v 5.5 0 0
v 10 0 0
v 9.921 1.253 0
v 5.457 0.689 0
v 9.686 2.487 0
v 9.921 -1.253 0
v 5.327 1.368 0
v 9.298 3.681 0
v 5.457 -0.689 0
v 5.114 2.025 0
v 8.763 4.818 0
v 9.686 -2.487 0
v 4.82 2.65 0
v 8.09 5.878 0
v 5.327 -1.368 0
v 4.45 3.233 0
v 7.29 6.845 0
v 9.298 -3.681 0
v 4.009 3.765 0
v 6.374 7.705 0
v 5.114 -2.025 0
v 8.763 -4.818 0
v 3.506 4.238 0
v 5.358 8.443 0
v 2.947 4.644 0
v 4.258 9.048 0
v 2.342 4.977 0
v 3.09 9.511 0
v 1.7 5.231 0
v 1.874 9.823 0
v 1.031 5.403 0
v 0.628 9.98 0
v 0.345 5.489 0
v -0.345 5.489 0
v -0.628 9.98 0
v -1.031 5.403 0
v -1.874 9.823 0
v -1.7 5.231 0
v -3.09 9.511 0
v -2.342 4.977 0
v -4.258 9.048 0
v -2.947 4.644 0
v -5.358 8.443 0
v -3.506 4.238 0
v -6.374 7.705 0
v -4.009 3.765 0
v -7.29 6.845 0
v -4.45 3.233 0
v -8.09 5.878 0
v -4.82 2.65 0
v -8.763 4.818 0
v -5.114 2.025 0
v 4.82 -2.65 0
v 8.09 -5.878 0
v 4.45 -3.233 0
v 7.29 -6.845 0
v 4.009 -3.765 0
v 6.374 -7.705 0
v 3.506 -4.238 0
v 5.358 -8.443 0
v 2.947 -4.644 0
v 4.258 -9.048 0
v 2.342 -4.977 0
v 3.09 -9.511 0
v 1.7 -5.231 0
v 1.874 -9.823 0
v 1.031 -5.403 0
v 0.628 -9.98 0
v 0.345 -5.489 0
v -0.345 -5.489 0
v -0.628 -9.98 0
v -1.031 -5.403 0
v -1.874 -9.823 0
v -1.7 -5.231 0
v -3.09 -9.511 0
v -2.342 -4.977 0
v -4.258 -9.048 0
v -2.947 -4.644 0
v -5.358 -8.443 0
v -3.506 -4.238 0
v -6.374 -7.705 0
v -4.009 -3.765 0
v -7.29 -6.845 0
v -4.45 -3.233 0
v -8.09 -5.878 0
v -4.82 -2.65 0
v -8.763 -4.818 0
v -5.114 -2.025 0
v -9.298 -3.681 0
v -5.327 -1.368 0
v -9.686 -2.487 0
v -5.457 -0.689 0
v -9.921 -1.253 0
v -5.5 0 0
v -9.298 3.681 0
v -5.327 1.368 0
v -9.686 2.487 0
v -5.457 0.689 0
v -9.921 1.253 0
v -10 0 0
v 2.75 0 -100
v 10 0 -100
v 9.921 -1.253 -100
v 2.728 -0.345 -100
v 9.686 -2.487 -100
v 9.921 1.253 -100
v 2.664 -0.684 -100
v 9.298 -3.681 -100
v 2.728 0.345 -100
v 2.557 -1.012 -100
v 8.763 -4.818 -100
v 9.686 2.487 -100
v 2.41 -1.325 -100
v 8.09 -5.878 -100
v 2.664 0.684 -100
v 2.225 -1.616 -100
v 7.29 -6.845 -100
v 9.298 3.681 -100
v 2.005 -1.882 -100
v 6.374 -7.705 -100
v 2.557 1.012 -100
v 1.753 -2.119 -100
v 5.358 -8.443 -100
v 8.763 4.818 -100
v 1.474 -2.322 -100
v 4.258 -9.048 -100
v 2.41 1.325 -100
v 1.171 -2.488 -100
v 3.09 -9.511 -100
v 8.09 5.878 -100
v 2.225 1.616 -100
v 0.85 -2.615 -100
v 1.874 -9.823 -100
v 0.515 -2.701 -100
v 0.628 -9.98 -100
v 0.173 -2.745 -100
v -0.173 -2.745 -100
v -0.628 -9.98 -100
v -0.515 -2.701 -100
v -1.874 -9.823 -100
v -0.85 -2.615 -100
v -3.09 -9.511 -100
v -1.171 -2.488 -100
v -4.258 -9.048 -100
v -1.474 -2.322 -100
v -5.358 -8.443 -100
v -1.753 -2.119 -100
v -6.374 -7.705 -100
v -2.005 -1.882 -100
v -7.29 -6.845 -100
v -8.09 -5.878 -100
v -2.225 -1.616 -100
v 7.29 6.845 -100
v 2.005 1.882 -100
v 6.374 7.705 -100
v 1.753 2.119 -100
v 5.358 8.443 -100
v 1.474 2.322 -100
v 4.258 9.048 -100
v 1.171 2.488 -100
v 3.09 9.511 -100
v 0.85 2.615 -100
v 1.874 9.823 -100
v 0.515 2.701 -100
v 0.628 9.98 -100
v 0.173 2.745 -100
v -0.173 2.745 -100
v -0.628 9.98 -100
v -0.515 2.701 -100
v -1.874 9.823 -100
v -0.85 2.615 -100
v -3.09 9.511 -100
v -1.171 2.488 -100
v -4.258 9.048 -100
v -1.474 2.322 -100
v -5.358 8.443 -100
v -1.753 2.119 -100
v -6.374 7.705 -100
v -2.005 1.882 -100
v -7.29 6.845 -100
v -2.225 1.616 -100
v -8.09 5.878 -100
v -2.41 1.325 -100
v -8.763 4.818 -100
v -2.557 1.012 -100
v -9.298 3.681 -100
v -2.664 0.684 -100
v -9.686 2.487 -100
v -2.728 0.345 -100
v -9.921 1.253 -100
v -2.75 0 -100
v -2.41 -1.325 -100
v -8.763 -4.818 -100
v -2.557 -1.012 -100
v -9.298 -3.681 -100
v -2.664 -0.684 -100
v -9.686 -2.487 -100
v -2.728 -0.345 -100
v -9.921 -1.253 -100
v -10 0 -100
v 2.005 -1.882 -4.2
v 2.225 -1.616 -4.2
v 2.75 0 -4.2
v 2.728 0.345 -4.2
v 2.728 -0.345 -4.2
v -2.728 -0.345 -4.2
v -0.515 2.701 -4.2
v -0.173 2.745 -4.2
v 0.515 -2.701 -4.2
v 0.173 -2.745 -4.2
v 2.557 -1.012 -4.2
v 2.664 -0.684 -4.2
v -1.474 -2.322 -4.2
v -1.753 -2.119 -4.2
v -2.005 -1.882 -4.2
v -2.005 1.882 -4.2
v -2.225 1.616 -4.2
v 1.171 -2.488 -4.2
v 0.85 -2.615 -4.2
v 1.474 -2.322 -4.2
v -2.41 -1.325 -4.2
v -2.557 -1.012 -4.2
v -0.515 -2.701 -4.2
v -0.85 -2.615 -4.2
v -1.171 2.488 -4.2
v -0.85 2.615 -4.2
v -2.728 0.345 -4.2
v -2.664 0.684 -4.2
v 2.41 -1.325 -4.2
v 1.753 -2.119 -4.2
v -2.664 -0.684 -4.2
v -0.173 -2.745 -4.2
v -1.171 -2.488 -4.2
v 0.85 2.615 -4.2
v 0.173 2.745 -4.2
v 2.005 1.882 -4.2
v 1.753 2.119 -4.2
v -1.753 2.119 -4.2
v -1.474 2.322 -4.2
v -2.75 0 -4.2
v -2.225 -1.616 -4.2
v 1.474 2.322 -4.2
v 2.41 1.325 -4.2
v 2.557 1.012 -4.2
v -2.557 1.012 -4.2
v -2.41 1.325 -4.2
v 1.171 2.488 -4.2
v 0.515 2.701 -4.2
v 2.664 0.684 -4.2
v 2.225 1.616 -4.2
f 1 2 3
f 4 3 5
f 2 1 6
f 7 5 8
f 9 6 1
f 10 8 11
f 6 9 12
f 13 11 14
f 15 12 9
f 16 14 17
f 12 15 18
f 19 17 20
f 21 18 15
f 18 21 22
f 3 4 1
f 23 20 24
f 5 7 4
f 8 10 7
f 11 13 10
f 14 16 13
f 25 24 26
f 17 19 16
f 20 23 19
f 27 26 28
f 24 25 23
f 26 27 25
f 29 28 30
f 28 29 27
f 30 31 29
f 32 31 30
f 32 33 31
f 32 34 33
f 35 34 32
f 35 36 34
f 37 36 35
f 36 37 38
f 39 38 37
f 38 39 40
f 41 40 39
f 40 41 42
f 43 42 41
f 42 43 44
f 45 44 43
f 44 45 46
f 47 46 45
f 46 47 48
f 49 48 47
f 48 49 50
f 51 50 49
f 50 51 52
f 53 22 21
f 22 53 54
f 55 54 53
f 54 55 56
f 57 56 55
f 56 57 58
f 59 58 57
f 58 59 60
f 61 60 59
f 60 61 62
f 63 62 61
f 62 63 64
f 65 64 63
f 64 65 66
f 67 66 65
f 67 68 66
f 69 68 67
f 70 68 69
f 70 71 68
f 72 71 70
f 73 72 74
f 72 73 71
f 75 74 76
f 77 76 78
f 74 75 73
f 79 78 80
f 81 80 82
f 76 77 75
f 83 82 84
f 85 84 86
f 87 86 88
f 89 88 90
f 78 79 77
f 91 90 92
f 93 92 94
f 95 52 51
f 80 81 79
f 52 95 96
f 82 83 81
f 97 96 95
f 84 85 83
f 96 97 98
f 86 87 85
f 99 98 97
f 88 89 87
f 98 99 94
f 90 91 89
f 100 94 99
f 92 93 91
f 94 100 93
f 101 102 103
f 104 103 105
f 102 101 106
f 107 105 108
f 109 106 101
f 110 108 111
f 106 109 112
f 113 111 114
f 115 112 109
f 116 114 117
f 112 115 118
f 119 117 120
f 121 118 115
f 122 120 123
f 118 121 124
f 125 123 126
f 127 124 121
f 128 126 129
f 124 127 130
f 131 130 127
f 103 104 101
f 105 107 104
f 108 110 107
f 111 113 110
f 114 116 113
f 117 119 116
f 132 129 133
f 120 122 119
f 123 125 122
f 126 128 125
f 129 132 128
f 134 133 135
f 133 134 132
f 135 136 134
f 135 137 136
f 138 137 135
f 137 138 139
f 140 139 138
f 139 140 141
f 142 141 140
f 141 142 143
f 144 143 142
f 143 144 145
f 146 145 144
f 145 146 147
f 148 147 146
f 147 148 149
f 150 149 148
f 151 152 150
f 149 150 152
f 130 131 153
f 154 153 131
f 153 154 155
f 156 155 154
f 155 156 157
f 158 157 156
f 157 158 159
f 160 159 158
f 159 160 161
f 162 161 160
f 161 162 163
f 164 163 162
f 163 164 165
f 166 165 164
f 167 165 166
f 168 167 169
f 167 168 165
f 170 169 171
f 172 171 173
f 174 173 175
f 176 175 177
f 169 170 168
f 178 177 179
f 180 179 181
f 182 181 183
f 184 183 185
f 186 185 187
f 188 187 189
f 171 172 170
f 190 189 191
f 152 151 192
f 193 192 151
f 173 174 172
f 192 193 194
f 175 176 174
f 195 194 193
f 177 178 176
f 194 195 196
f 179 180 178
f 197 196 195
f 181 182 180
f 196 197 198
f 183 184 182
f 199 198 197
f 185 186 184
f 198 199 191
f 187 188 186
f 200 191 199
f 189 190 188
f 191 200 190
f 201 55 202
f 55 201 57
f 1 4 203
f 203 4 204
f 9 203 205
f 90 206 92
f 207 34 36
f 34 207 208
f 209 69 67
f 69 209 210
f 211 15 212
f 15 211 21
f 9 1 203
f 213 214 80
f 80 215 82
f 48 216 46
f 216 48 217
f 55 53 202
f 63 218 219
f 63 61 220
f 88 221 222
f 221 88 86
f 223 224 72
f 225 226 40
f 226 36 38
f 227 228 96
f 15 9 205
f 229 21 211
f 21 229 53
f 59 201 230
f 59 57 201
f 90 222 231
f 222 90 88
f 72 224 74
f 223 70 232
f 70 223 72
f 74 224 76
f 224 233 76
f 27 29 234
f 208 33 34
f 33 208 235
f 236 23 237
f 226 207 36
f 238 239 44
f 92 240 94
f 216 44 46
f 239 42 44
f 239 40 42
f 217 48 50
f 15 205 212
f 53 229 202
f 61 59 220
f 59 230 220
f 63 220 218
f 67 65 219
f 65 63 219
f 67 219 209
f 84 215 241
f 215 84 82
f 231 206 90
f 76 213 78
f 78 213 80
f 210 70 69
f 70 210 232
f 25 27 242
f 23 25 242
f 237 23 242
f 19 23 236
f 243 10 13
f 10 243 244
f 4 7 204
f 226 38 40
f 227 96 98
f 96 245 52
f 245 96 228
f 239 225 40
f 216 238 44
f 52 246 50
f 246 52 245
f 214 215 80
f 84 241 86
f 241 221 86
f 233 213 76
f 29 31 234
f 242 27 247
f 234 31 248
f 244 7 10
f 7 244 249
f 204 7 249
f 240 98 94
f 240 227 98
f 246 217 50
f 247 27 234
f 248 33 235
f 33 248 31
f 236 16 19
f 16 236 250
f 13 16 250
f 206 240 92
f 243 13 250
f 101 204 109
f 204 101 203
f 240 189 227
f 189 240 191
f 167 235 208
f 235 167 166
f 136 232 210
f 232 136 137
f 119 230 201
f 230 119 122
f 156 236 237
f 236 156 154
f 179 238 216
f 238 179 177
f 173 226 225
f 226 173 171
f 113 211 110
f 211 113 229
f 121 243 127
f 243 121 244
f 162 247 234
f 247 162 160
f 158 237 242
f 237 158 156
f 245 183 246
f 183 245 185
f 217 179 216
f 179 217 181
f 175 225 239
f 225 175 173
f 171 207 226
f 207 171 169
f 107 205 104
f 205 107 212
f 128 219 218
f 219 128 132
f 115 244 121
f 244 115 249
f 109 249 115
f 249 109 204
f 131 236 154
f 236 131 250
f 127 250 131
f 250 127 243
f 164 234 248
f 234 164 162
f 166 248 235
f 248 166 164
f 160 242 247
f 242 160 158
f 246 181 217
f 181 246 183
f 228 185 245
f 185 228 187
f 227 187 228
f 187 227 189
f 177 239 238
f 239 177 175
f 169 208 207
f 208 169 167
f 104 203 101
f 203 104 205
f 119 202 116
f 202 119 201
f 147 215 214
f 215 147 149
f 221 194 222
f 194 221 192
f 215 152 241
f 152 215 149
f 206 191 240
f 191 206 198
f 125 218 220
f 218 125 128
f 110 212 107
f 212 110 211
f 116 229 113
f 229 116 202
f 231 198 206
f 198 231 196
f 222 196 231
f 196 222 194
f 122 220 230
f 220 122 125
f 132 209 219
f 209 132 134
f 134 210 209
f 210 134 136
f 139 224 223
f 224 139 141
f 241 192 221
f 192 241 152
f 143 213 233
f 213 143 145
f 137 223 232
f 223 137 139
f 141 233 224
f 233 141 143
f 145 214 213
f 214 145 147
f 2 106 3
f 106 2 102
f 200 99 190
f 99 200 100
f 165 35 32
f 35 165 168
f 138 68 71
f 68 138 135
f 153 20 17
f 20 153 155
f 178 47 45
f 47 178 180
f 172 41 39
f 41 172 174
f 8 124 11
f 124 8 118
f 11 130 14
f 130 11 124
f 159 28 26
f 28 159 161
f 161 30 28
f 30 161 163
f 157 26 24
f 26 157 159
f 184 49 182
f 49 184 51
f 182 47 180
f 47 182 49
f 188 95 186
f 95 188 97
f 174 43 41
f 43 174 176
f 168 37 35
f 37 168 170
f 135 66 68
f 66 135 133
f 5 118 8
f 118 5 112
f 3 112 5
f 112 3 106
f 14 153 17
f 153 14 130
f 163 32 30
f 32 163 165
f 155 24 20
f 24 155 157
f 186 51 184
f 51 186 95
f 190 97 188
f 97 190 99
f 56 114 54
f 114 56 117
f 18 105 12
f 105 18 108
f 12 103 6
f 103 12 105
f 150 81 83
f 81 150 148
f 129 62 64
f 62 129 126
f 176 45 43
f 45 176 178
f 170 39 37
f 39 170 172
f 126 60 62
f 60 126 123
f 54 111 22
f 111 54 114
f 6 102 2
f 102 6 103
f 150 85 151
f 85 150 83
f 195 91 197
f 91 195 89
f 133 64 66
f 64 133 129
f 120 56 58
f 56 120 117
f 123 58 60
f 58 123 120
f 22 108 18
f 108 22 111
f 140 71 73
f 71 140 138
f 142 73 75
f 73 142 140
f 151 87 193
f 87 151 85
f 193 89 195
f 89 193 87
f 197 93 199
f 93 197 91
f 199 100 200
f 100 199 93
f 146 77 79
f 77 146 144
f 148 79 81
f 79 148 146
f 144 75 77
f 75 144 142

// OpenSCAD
$fn = 50;


difference() {
	union() {
		translate(v = [0, 0, -100.0000000000]) {
			cylinder(h = 100, r = 10.0000000000);
		}
		cylinder(h = 0, r = 19.0000000000);
	}
	union() {
		translate(v = [0, 0, 0]) {
			rotate(a = [0, 0, 0]) {
				difference() {
					union() {
						#translate(v = [0, 0, -100.0000000000]) {
							cylinder(h = 100, r = 2.2500000000);
						}
						#translate(v = [0, 0, -4.2000000000]) {
							cylinder(h = 4.2000000000, r = 10.0000000000, r1 = 2.7500000000, r2 = 5.5000000000);
						}
						#translate(v = [0, 0, -100.0000000000]) {
							cylinder(h = 100, r = 2.7500000000);
						}
						#translate(v = [0, 0, -100.0000000000]) {
							cylinder(h = 100, r = 2.2500000000);
						}
					}
					union();
				}
			}
		}
	}
}
